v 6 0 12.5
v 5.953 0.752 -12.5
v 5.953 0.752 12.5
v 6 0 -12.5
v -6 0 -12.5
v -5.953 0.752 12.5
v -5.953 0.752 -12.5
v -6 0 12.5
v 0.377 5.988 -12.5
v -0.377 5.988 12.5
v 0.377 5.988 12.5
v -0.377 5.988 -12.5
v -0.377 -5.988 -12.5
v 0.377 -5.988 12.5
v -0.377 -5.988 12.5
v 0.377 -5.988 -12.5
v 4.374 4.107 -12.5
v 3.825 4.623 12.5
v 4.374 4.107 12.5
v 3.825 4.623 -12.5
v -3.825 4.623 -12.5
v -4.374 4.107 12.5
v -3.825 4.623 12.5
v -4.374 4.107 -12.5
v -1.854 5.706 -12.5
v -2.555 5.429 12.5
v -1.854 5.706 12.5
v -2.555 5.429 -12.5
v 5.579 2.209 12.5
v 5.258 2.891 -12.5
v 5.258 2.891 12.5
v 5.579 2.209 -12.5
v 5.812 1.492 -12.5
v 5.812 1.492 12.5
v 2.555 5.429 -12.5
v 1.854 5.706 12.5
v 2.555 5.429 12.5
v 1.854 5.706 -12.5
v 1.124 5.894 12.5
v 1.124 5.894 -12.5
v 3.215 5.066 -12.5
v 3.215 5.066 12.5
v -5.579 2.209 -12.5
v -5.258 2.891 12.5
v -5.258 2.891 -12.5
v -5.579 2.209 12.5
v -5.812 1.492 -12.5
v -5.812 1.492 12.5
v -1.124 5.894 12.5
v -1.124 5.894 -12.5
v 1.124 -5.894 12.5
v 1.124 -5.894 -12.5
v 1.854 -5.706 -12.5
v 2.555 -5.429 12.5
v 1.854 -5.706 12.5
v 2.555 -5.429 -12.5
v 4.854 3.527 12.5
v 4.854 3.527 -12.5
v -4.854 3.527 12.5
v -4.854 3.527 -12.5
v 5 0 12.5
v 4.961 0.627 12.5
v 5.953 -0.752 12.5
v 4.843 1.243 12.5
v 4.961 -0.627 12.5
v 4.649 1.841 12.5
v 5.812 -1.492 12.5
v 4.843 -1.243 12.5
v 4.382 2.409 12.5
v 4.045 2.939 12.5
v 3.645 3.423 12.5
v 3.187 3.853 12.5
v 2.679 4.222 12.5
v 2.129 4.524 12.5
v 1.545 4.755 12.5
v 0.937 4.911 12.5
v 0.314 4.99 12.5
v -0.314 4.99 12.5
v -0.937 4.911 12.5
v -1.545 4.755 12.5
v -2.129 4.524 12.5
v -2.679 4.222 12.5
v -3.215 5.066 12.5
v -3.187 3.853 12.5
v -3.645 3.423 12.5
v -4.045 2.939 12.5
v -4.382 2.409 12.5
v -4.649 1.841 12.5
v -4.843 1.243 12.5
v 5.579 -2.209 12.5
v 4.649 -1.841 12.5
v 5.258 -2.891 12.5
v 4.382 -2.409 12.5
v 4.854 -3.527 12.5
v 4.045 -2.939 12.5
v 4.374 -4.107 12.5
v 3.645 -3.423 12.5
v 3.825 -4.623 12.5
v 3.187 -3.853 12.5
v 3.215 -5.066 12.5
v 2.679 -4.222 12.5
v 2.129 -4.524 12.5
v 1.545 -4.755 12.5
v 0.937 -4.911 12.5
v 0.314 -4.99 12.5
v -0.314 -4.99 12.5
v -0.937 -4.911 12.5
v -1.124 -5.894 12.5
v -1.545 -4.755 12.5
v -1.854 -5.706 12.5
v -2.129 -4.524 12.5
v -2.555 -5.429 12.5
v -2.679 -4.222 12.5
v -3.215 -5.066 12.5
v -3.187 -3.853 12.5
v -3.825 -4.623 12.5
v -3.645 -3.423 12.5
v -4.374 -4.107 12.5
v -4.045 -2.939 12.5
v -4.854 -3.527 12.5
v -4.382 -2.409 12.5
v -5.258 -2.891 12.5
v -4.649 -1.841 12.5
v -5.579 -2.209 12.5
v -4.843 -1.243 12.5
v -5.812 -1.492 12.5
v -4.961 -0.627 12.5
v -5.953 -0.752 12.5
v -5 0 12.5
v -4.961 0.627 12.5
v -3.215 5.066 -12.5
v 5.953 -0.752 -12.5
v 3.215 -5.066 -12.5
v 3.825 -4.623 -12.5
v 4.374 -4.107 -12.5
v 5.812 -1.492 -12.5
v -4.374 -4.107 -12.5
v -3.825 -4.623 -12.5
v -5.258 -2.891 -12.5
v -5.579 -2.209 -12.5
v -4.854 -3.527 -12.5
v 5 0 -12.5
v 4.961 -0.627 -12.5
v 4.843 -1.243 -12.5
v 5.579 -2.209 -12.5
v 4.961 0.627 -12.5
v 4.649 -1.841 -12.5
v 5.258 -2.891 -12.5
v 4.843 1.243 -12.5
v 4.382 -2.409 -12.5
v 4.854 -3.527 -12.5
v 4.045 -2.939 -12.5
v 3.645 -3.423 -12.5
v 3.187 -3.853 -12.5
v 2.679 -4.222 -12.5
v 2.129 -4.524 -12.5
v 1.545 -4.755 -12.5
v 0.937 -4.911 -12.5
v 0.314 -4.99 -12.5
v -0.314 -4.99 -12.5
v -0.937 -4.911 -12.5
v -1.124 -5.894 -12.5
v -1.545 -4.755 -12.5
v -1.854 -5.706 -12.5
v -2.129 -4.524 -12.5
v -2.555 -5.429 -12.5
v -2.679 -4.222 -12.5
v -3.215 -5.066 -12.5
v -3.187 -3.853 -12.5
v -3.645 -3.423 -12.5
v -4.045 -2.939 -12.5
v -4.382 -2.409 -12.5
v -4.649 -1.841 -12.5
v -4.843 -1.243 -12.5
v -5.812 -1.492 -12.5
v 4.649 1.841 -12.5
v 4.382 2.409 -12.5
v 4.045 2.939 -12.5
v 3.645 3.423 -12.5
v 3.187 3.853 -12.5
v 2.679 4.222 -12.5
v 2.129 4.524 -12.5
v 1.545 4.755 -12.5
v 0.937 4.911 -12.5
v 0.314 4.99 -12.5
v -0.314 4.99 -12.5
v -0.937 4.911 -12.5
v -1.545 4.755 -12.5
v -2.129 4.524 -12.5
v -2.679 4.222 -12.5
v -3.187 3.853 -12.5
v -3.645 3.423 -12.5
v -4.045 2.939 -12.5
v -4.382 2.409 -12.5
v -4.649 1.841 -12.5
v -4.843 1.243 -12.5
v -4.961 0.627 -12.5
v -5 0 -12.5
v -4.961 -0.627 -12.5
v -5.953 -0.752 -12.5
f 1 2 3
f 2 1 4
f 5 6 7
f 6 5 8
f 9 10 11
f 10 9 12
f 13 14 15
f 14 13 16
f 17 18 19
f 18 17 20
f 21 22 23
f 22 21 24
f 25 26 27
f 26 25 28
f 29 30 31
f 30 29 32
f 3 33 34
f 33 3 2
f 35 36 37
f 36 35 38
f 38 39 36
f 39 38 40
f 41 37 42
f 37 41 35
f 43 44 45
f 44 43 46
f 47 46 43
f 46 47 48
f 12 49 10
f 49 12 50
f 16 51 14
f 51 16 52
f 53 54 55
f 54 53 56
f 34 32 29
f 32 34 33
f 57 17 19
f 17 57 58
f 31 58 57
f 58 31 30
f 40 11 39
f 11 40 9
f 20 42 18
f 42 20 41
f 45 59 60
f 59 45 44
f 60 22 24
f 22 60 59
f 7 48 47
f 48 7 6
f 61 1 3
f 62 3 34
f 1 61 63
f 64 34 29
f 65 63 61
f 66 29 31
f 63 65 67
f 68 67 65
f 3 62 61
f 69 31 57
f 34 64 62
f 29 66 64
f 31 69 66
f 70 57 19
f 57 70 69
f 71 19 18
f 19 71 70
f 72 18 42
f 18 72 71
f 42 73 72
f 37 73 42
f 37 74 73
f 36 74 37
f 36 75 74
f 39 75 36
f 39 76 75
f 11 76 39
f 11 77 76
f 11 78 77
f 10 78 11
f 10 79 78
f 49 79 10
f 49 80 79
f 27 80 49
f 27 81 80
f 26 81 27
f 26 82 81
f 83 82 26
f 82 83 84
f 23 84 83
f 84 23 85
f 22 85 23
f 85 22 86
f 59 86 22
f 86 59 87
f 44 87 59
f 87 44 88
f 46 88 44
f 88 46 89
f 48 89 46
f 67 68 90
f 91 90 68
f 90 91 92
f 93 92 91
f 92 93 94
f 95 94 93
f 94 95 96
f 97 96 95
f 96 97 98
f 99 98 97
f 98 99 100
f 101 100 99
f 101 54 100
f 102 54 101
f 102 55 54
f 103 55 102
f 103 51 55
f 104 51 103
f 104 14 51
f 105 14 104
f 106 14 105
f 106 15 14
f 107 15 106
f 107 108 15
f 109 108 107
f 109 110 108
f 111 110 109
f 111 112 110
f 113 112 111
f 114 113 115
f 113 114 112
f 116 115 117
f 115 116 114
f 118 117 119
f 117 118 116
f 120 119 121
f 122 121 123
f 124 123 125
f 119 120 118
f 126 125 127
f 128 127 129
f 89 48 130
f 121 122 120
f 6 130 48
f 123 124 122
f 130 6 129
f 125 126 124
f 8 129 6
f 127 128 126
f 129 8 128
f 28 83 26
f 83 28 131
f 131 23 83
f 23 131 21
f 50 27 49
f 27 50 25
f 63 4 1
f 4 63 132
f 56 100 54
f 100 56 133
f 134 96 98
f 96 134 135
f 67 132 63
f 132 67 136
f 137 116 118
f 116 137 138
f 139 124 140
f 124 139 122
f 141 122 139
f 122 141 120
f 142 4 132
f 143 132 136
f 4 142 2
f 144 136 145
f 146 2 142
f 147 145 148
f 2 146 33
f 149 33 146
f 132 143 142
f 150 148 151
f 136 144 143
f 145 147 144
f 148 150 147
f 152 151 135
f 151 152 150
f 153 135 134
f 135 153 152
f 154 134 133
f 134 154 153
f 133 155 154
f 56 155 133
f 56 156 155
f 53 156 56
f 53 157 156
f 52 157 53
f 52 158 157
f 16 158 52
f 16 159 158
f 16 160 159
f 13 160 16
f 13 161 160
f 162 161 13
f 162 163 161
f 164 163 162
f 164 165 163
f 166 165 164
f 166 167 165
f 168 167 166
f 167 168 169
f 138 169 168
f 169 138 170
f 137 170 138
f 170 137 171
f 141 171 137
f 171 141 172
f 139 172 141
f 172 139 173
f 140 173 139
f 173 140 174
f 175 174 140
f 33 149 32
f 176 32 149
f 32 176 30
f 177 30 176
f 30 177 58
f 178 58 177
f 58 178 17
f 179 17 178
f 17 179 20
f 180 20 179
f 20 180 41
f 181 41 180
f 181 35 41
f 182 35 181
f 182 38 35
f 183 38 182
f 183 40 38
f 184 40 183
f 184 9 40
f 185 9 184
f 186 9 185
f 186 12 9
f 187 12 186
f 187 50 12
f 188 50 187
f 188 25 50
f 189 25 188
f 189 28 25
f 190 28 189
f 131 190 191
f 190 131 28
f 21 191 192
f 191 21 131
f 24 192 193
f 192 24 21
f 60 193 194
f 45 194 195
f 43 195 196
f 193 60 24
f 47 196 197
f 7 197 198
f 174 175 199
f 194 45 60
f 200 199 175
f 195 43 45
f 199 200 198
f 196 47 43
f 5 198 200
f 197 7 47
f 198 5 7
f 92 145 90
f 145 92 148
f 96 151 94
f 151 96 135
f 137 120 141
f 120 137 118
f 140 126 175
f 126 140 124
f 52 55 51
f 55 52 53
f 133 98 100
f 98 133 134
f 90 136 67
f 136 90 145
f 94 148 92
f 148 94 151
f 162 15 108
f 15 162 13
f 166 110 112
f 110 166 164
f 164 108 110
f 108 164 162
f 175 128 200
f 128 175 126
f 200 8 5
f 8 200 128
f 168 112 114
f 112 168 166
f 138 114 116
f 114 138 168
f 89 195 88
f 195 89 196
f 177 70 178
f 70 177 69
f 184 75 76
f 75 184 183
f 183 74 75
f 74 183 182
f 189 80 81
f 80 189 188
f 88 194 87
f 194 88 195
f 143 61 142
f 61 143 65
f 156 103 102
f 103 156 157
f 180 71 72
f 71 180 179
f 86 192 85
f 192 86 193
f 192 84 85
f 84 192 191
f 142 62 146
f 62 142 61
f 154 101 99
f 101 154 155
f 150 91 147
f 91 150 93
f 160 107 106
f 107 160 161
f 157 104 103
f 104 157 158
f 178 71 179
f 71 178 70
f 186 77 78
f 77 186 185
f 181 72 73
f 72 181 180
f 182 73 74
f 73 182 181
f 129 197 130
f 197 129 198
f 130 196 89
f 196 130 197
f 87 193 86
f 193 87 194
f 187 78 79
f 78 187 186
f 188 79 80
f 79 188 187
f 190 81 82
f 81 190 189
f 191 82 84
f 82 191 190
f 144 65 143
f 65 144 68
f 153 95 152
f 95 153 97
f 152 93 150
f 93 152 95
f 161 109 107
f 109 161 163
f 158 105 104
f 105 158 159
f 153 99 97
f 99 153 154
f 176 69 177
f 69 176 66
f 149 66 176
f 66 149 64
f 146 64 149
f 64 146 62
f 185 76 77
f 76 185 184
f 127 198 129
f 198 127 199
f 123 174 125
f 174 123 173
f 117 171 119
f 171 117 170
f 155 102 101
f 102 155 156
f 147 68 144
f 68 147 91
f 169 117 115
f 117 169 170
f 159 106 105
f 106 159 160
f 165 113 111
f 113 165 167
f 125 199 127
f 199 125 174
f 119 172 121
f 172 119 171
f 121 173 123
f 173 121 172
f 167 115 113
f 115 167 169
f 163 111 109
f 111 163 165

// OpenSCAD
$fn = 50;


difference() {
	union() {
		translate(v = [0, 0, -12.5000000000]) {
			cylinder(h = 25, r = 6.0000000000);
		}
	}
	union() {
		translate(v = [0, 0, -100.0000000000]) {
			cylinder(h = 200, r = 5);
		}
	}
}
